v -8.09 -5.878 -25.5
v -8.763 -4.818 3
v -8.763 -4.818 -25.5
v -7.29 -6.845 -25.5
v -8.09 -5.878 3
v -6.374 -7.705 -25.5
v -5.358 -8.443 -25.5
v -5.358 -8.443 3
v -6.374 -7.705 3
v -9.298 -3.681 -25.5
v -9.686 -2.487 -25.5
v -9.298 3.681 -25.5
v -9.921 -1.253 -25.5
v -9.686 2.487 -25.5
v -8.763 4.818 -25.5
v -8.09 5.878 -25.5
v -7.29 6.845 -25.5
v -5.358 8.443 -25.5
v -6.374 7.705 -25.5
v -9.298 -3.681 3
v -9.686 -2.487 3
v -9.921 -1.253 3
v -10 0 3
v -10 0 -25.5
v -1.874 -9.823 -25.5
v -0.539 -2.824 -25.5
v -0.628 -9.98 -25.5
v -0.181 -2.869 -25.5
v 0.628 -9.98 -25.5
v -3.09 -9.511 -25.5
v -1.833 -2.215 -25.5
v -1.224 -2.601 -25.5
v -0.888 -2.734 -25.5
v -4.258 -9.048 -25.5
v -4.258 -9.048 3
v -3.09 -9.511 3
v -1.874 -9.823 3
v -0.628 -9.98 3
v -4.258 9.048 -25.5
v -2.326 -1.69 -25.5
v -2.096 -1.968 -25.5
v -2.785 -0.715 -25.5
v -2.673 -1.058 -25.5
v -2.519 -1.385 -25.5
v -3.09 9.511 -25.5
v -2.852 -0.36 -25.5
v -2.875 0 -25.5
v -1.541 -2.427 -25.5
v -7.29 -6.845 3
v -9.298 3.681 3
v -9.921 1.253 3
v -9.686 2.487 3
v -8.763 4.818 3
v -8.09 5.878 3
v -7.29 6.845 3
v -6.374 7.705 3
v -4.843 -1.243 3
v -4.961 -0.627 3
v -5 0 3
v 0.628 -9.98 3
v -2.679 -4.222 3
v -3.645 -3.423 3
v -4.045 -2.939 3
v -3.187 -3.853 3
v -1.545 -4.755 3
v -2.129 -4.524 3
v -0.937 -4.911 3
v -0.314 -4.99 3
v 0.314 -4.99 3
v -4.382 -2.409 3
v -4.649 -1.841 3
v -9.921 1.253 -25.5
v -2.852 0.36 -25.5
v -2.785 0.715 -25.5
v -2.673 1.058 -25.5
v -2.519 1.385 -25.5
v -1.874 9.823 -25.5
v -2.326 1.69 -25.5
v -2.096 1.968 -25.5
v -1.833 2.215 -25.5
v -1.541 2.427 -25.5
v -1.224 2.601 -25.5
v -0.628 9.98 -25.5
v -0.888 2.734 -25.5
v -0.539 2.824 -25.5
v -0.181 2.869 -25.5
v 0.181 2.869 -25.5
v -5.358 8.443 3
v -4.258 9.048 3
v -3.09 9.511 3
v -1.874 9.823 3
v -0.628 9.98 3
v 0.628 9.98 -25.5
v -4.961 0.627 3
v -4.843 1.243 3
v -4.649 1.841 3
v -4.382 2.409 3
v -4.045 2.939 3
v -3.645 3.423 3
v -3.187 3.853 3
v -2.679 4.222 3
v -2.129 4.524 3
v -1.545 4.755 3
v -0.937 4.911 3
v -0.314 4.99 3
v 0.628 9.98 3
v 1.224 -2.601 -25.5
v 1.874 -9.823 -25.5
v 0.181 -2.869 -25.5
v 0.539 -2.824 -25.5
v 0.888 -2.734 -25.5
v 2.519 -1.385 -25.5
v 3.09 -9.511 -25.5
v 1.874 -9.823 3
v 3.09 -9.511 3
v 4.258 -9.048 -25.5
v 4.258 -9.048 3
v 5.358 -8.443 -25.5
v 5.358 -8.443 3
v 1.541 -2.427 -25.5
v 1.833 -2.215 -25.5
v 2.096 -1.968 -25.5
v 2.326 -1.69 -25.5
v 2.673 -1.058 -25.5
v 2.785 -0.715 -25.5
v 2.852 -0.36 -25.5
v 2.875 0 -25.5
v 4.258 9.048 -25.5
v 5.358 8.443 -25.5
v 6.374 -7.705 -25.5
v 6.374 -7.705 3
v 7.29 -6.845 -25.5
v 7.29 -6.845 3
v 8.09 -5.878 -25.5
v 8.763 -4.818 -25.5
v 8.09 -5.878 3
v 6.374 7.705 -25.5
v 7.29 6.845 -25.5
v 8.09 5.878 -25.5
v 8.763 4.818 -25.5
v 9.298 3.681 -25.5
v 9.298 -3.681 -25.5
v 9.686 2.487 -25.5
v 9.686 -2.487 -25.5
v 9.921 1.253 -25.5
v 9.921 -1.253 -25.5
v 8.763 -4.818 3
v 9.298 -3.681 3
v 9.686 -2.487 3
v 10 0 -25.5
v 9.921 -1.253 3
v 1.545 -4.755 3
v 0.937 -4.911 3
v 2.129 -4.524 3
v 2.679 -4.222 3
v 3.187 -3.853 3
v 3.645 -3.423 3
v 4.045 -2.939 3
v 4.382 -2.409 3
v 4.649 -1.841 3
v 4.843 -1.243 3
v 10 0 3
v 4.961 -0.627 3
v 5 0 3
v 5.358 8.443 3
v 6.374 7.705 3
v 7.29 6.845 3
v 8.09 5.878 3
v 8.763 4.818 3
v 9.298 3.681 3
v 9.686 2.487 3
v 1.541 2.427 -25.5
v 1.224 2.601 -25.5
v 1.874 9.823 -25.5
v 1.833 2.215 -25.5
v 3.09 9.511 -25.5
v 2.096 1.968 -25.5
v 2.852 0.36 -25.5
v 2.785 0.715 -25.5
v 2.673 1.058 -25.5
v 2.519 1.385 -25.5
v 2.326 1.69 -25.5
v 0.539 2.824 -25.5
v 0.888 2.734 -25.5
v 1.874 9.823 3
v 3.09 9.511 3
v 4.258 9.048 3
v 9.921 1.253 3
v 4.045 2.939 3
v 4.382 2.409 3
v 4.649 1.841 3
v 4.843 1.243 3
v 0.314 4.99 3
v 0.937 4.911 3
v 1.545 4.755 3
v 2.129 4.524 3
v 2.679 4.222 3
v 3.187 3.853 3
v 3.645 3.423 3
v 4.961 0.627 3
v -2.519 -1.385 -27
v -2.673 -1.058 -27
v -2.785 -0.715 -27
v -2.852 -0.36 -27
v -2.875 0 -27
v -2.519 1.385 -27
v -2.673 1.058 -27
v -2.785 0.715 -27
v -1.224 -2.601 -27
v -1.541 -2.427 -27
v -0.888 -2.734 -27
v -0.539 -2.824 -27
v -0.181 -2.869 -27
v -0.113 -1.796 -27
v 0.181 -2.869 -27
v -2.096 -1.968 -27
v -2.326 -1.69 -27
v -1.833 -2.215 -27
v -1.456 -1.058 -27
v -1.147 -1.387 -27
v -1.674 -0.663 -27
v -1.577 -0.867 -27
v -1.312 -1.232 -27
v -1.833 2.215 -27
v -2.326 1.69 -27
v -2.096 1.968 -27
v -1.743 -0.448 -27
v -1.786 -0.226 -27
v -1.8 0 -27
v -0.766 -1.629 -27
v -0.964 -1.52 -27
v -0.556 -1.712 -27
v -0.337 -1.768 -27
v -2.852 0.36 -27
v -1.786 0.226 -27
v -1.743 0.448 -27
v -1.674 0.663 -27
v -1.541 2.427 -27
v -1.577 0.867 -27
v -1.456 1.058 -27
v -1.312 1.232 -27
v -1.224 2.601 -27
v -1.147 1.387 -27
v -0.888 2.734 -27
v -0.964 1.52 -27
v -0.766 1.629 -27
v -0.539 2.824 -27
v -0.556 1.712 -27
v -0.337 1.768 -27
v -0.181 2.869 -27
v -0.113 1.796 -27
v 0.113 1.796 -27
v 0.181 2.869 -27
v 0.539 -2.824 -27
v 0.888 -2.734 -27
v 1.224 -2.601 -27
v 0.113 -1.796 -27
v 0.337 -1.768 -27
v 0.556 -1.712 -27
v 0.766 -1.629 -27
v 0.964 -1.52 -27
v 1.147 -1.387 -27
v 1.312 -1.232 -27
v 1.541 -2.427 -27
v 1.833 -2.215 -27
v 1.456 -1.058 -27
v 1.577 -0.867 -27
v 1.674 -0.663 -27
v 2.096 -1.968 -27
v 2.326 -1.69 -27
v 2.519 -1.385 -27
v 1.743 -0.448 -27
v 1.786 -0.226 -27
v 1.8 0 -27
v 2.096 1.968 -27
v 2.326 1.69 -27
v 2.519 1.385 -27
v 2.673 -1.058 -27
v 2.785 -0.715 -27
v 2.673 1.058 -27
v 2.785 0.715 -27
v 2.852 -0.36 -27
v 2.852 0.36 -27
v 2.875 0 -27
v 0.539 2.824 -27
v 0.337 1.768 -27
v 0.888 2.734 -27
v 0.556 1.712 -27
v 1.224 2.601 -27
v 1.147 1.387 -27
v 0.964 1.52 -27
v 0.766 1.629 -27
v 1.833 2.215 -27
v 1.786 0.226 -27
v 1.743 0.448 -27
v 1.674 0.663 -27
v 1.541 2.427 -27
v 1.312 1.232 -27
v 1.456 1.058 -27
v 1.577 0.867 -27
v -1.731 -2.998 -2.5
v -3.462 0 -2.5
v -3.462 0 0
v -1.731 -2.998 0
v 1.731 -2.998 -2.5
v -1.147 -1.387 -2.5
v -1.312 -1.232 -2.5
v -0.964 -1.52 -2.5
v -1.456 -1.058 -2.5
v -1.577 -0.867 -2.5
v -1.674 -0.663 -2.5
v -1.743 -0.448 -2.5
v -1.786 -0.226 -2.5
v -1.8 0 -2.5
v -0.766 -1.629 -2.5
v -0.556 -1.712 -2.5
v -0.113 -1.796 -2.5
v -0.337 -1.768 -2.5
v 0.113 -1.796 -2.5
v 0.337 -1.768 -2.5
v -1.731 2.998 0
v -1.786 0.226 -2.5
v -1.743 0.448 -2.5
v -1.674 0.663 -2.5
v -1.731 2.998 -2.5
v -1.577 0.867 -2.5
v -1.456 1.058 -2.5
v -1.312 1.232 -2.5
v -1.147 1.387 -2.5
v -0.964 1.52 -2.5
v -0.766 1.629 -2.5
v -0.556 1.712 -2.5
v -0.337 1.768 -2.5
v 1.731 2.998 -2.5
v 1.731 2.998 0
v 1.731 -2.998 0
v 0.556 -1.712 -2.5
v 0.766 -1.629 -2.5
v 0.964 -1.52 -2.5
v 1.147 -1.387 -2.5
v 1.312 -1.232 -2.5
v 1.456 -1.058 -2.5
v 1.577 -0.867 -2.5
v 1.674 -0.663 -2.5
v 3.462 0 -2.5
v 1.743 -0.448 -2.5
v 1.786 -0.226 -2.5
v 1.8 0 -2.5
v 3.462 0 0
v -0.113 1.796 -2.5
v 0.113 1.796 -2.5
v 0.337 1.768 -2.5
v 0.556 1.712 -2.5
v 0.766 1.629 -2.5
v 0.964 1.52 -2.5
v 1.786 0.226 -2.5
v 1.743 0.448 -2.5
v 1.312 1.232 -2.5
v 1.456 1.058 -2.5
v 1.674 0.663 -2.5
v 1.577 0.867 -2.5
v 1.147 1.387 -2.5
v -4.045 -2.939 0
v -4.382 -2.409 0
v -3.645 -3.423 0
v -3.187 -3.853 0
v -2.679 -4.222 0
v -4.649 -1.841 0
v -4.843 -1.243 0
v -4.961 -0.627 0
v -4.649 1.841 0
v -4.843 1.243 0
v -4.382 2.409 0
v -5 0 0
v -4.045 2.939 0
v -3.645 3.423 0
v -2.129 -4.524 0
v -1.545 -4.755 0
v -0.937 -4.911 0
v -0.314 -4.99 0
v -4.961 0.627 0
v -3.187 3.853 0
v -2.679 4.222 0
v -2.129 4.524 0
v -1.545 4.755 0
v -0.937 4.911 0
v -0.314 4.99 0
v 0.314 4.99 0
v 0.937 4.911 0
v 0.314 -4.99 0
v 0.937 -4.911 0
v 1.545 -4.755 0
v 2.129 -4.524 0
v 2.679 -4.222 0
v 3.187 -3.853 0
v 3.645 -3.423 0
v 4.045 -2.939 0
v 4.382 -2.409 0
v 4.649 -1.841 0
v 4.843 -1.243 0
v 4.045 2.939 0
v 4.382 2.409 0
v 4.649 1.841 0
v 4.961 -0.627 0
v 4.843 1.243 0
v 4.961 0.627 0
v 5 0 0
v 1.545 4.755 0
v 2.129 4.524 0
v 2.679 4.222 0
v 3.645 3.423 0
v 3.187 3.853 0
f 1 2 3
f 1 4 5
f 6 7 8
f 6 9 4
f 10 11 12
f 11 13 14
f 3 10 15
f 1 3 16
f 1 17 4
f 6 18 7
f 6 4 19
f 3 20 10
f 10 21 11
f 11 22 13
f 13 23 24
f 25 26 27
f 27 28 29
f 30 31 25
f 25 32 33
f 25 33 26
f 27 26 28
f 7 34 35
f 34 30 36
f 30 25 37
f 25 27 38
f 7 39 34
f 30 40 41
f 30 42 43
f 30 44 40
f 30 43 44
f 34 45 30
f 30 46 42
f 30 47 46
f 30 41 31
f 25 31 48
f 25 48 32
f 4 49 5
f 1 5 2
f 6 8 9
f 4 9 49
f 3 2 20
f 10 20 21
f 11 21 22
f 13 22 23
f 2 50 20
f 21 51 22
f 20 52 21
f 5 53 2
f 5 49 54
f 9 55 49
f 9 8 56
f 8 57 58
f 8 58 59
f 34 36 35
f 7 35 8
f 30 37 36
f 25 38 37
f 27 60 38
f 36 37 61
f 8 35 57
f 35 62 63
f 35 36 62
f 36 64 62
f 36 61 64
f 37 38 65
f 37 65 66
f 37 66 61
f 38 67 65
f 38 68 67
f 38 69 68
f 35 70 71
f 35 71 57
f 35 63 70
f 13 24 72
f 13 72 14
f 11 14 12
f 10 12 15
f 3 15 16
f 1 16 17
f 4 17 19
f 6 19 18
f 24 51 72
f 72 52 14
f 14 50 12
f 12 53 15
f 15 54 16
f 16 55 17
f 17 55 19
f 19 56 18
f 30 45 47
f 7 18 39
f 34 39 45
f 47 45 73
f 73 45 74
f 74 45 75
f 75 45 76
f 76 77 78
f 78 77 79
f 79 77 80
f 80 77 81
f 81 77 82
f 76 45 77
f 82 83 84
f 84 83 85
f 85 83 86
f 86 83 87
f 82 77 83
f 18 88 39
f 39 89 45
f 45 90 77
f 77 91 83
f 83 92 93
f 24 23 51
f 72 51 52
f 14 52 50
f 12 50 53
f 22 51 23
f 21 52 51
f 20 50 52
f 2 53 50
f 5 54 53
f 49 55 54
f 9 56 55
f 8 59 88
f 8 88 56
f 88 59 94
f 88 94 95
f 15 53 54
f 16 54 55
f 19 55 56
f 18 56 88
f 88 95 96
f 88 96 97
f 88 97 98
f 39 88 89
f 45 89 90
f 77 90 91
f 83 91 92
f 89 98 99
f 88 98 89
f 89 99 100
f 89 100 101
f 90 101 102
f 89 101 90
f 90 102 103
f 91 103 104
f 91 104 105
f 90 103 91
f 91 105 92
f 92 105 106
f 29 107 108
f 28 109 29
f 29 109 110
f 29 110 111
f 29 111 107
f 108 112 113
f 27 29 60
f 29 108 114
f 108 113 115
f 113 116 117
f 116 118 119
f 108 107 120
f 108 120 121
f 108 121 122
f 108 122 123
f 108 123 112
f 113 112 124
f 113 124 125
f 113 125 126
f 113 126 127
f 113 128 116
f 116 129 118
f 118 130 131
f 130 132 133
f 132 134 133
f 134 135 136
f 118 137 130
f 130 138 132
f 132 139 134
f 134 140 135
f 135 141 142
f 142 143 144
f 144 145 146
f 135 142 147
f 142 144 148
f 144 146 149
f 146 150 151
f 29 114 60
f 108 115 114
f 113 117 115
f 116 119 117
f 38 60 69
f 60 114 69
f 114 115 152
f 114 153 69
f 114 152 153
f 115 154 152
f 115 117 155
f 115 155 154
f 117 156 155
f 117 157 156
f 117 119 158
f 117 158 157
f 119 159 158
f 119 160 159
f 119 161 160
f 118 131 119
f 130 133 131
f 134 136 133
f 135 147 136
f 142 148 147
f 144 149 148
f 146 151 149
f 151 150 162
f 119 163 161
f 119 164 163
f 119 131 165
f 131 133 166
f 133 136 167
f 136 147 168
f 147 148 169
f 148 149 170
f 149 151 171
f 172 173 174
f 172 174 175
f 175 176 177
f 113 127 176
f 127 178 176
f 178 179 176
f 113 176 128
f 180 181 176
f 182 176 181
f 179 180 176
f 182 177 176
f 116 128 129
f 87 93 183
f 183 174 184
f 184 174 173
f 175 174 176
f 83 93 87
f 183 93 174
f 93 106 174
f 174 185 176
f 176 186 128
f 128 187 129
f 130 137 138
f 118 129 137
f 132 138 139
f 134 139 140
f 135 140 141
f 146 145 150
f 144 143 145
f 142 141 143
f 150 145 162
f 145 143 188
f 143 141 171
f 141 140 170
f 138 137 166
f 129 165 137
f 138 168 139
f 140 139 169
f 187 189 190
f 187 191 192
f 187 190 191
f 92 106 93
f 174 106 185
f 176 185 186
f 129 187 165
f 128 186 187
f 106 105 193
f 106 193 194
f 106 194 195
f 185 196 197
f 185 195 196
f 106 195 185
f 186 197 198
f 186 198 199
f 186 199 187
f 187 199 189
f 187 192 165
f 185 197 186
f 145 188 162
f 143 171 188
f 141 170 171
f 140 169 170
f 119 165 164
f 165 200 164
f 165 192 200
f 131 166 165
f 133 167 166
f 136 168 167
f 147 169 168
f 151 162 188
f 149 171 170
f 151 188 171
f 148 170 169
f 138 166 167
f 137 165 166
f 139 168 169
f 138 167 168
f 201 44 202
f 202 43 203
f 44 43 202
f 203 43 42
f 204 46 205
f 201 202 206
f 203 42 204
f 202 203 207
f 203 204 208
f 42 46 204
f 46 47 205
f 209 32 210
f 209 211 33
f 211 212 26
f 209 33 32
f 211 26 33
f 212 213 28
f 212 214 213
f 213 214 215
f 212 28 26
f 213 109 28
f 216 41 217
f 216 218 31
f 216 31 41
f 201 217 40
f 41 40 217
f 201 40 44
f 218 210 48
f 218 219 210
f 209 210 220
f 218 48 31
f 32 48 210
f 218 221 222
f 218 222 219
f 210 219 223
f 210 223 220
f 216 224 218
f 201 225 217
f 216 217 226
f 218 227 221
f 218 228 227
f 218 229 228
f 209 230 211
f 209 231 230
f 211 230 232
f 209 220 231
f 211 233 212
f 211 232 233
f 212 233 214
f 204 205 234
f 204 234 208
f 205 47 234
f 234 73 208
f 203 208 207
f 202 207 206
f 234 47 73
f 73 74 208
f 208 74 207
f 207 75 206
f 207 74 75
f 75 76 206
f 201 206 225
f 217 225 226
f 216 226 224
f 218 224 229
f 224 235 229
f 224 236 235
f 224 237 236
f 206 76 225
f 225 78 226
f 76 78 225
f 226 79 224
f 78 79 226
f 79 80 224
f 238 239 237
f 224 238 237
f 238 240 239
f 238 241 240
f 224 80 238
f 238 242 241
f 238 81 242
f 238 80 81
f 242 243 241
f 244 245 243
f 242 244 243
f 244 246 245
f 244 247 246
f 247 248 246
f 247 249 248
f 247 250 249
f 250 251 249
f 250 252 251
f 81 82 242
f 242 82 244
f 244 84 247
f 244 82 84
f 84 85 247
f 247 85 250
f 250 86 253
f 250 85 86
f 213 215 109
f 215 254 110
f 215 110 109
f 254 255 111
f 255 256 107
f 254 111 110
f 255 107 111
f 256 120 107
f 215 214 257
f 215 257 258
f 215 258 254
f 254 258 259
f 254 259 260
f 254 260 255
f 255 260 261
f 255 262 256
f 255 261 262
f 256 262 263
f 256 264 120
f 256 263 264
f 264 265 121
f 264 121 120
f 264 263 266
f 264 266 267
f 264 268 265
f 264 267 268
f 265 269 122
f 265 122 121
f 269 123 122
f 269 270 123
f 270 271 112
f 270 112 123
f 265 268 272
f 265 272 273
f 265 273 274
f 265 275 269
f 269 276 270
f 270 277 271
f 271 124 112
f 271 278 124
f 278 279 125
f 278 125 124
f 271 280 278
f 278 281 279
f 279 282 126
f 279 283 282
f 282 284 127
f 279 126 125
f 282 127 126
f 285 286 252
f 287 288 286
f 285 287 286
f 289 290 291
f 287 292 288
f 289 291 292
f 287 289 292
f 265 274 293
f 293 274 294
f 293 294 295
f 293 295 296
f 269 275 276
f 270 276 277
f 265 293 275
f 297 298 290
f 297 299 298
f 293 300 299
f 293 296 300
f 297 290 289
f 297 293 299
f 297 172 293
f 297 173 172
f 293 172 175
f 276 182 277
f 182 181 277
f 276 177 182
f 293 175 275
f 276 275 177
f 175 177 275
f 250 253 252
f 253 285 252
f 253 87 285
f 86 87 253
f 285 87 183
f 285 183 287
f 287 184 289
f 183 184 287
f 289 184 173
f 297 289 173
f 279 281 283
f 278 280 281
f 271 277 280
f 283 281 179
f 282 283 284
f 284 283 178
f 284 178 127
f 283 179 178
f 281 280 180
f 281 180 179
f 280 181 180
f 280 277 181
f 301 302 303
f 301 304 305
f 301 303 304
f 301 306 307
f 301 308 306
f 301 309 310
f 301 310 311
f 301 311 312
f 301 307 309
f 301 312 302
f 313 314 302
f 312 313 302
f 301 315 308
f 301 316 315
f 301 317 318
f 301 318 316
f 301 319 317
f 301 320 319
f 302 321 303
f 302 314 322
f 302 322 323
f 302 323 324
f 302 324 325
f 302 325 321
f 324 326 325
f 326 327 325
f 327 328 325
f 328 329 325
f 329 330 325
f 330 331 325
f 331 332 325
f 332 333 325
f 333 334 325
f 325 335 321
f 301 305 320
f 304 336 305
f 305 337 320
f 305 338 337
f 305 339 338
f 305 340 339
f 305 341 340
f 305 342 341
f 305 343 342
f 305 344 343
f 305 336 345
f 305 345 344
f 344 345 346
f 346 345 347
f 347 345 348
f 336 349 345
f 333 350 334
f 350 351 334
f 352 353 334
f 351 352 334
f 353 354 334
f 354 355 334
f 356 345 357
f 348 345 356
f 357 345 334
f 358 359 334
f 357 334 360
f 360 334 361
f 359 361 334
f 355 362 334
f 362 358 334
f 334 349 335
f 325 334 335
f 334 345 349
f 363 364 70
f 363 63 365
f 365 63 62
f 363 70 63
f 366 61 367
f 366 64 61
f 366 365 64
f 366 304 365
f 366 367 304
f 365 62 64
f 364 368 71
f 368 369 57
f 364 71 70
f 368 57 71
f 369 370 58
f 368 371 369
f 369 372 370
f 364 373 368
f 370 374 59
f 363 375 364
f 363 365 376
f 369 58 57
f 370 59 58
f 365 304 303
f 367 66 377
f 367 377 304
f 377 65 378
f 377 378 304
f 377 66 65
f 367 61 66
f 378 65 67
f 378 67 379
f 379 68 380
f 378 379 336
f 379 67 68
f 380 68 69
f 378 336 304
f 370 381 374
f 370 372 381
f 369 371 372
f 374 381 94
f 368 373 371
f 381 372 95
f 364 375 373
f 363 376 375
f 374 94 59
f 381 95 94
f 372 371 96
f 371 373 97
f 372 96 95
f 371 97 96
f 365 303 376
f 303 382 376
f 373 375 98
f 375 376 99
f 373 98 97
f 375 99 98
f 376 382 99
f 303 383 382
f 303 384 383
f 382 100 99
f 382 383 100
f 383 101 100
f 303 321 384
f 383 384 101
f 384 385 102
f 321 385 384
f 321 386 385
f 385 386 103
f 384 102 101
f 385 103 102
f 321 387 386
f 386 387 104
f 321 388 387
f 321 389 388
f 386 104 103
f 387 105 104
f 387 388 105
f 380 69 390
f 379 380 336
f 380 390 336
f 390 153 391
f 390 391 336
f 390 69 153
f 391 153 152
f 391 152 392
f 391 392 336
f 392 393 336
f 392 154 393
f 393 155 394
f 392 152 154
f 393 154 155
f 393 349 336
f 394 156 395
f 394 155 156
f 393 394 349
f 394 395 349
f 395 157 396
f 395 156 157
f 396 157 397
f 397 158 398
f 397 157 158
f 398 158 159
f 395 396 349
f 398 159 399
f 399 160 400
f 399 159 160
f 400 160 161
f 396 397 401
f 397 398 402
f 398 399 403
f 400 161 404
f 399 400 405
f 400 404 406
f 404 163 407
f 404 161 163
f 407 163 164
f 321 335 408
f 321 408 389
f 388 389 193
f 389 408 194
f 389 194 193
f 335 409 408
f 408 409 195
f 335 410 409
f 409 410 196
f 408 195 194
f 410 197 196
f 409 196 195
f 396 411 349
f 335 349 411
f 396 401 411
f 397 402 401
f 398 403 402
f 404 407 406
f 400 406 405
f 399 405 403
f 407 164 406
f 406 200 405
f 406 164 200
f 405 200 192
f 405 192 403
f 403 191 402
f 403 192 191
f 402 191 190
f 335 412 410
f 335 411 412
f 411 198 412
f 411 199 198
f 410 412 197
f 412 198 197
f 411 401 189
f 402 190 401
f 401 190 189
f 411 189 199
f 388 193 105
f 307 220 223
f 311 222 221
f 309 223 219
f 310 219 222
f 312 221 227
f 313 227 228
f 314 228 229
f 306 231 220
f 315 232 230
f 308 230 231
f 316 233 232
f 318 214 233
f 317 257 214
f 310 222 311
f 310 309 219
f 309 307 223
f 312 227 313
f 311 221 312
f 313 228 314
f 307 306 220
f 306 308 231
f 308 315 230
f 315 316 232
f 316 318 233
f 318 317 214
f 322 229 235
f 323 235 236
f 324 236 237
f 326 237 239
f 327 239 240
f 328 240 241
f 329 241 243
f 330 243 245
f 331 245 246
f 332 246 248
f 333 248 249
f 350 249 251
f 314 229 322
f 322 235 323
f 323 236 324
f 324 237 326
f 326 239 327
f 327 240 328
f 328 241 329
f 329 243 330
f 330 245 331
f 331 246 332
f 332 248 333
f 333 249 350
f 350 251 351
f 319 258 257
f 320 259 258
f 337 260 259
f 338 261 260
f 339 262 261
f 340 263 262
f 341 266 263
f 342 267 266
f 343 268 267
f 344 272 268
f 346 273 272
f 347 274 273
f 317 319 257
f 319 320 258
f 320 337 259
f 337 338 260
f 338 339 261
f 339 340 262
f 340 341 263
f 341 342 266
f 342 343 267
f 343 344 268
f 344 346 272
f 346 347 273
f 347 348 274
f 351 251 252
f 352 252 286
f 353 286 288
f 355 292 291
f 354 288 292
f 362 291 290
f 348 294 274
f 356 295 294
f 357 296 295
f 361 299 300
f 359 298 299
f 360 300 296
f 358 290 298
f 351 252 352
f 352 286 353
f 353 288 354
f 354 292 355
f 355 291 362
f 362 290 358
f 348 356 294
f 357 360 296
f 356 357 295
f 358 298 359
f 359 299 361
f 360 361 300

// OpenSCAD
$fn = 50;

difference() {
	union() {
		translate(v = [0, 0, -25.5]) {
			cylinder(h = 28.5, r = 10.0);
		}
		#translate(v = [0, 0, -27.0]) {
			cylinder(h = 27, r = 2.875);
		}
	}
	union() {
		translate(v = [0, 0, 0]) {
			rotate(a = [0, 0, 0]) {
				difference() {
					union() {
						translate(v = [0, 0, -2.5]) {
							linear_extrude(height = 2.5) {
								polygon(points = [[3.4619999999999997, 0.0], [1.7310000000000003, 2.9981799479017264], [-1.7309999999999992, 2.9981799479017264], [-3.4619999999999997, 4.2397272186481365e-16], [-1.7310000000000014, -2.998179947901726], [1.7309999999999977, -2.9981799479017277]]);
							}
						}
					}
					union();
				}
			}
		}
		#cylinder(h = 3, r = 5.0);
		#translate(v = [0, 0, -100.0]) {
			cylinder(h = 200, r = 1.8);
		}
	}
}
